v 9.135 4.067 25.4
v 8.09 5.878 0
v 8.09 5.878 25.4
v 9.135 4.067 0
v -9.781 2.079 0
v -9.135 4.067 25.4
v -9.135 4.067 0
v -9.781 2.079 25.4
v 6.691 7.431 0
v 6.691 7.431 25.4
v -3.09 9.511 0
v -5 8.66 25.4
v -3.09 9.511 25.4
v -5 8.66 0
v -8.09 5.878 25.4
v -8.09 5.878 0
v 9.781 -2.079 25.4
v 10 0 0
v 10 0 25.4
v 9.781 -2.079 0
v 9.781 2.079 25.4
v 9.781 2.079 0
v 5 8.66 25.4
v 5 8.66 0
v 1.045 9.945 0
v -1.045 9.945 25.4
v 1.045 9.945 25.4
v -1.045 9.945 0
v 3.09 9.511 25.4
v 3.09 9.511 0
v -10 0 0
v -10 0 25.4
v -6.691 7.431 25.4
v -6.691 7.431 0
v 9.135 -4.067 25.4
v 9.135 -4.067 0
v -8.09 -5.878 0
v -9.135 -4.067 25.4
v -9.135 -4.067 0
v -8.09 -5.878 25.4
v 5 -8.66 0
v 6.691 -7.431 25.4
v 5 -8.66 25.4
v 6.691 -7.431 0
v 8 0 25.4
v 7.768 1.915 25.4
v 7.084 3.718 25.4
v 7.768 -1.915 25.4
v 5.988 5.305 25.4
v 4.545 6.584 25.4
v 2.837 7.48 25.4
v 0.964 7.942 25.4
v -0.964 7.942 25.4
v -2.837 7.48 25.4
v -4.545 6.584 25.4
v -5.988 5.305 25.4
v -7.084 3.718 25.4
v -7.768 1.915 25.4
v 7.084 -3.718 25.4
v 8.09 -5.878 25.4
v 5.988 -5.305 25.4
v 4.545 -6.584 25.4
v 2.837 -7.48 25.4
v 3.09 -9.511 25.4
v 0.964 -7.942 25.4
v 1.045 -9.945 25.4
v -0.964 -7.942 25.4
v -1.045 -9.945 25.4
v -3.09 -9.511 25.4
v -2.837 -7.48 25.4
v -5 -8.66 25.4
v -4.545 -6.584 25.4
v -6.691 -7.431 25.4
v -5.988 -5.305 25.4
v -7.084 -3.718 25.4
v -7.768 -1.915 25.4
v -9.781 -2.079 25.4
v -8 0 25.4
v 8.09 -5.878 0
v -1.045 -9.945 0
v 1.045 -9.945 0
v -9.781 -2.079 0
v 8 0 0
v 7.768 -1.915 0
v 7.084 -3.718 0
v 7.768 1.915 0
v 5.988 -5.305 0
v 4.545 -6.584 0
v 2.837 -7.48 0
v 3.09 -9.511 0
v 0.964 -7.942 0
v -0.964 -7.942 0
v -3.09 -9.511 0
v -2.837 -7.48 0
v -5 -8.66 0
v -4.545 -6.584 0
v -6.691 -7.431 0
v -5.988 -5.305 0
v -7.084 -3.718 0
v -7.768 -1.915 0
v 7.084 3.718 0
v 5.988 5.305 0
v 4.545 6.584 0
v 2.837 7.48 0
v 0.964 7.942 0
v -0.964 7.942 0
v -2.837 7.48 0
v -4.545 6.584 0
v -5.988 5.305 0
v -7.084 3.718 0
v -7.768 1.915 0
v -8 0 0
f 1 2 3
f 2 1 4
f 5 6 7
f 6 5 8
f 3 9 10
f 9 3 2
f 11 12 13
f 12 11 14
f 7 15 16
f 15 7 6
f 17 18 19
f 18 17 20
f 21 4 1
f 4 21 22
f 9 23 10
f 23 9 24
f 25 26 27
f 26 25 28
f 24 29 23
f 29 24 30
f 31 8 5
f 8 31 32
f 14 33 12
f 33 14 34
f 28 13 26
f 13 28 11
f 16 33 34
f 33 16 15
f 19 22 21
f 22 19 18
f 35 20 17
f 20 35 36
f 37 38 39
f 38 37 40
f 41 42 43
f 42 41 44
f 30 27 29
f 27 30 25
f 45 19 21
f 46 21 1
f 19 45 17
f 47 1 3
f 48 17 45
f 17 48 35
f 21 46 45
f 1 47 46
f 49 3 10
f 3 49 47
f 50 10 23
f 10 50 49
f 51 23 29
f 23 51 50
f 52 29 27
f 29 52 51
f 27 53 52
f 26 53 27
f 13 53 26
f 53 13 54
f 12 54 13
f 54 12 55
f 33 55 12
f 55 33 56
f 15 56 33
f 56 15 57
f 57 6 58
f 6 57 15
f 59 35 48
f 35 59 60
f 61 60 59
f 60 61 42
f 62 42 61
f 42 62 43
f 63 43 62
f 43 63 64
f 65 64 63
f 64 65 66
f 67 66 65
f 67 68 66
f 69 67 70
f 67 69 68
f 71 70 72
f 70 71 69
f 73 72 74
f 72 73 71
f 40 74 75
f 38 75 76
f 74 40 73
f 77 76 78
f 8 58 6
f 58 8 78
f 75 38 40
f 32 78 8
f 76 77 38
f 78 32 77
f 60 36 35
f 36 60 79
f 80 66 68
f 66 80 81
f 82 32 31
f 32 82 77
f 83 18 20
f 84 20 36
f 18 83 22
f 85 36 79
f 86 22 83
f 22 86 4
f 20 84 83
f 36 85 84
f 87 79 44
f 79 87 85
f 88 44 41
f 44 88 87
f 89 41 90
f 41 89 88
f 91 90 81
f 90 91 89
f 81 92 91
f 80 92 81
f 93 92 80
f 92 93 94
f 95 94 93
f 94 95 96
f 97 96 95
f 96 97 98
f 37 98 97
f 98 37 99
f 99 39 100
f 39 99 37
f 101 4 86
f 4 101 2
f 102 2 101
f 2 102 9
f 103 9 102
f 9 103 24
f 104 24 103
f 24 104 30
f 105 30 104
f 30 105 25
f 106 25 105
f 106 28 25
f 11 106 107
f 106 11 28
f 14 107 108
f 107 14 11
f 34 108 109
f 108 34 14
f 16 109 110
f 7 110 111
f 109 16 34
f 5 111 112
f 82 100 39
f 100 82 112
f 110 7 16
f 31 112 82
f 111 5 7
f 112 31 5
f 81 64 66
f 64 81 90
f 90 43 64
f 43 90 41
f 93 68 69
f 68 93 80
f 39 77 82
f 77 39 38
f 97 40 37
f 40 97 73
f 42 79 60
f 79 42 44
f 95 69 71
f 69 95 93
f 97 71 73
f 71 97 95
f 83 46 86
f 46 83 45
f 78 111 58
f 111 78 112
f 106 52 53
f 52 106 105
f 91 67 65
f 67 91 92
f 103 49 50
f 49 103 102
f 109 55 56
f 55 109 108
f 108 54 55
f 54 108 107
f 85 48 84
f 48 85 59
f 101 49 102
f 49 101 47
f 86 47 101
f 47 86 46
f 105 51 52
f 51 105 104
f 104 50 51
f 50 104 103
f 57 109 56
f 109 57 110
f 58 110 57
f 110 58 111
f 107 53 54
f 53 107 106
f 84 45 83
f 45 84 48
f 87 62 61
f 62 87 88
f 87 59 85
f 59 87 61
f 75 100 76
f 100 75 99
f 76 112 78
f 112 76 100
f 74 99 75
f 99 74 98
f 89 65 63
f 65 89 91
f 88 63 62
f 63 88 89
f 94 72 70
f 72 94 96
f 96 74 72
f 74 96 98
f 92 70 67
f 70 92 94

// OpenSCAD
difference() {
	cylinder(r=10,h=25.4);
	translate([0,0,-1])
	cylinder(r=8,h=27.4);
}
